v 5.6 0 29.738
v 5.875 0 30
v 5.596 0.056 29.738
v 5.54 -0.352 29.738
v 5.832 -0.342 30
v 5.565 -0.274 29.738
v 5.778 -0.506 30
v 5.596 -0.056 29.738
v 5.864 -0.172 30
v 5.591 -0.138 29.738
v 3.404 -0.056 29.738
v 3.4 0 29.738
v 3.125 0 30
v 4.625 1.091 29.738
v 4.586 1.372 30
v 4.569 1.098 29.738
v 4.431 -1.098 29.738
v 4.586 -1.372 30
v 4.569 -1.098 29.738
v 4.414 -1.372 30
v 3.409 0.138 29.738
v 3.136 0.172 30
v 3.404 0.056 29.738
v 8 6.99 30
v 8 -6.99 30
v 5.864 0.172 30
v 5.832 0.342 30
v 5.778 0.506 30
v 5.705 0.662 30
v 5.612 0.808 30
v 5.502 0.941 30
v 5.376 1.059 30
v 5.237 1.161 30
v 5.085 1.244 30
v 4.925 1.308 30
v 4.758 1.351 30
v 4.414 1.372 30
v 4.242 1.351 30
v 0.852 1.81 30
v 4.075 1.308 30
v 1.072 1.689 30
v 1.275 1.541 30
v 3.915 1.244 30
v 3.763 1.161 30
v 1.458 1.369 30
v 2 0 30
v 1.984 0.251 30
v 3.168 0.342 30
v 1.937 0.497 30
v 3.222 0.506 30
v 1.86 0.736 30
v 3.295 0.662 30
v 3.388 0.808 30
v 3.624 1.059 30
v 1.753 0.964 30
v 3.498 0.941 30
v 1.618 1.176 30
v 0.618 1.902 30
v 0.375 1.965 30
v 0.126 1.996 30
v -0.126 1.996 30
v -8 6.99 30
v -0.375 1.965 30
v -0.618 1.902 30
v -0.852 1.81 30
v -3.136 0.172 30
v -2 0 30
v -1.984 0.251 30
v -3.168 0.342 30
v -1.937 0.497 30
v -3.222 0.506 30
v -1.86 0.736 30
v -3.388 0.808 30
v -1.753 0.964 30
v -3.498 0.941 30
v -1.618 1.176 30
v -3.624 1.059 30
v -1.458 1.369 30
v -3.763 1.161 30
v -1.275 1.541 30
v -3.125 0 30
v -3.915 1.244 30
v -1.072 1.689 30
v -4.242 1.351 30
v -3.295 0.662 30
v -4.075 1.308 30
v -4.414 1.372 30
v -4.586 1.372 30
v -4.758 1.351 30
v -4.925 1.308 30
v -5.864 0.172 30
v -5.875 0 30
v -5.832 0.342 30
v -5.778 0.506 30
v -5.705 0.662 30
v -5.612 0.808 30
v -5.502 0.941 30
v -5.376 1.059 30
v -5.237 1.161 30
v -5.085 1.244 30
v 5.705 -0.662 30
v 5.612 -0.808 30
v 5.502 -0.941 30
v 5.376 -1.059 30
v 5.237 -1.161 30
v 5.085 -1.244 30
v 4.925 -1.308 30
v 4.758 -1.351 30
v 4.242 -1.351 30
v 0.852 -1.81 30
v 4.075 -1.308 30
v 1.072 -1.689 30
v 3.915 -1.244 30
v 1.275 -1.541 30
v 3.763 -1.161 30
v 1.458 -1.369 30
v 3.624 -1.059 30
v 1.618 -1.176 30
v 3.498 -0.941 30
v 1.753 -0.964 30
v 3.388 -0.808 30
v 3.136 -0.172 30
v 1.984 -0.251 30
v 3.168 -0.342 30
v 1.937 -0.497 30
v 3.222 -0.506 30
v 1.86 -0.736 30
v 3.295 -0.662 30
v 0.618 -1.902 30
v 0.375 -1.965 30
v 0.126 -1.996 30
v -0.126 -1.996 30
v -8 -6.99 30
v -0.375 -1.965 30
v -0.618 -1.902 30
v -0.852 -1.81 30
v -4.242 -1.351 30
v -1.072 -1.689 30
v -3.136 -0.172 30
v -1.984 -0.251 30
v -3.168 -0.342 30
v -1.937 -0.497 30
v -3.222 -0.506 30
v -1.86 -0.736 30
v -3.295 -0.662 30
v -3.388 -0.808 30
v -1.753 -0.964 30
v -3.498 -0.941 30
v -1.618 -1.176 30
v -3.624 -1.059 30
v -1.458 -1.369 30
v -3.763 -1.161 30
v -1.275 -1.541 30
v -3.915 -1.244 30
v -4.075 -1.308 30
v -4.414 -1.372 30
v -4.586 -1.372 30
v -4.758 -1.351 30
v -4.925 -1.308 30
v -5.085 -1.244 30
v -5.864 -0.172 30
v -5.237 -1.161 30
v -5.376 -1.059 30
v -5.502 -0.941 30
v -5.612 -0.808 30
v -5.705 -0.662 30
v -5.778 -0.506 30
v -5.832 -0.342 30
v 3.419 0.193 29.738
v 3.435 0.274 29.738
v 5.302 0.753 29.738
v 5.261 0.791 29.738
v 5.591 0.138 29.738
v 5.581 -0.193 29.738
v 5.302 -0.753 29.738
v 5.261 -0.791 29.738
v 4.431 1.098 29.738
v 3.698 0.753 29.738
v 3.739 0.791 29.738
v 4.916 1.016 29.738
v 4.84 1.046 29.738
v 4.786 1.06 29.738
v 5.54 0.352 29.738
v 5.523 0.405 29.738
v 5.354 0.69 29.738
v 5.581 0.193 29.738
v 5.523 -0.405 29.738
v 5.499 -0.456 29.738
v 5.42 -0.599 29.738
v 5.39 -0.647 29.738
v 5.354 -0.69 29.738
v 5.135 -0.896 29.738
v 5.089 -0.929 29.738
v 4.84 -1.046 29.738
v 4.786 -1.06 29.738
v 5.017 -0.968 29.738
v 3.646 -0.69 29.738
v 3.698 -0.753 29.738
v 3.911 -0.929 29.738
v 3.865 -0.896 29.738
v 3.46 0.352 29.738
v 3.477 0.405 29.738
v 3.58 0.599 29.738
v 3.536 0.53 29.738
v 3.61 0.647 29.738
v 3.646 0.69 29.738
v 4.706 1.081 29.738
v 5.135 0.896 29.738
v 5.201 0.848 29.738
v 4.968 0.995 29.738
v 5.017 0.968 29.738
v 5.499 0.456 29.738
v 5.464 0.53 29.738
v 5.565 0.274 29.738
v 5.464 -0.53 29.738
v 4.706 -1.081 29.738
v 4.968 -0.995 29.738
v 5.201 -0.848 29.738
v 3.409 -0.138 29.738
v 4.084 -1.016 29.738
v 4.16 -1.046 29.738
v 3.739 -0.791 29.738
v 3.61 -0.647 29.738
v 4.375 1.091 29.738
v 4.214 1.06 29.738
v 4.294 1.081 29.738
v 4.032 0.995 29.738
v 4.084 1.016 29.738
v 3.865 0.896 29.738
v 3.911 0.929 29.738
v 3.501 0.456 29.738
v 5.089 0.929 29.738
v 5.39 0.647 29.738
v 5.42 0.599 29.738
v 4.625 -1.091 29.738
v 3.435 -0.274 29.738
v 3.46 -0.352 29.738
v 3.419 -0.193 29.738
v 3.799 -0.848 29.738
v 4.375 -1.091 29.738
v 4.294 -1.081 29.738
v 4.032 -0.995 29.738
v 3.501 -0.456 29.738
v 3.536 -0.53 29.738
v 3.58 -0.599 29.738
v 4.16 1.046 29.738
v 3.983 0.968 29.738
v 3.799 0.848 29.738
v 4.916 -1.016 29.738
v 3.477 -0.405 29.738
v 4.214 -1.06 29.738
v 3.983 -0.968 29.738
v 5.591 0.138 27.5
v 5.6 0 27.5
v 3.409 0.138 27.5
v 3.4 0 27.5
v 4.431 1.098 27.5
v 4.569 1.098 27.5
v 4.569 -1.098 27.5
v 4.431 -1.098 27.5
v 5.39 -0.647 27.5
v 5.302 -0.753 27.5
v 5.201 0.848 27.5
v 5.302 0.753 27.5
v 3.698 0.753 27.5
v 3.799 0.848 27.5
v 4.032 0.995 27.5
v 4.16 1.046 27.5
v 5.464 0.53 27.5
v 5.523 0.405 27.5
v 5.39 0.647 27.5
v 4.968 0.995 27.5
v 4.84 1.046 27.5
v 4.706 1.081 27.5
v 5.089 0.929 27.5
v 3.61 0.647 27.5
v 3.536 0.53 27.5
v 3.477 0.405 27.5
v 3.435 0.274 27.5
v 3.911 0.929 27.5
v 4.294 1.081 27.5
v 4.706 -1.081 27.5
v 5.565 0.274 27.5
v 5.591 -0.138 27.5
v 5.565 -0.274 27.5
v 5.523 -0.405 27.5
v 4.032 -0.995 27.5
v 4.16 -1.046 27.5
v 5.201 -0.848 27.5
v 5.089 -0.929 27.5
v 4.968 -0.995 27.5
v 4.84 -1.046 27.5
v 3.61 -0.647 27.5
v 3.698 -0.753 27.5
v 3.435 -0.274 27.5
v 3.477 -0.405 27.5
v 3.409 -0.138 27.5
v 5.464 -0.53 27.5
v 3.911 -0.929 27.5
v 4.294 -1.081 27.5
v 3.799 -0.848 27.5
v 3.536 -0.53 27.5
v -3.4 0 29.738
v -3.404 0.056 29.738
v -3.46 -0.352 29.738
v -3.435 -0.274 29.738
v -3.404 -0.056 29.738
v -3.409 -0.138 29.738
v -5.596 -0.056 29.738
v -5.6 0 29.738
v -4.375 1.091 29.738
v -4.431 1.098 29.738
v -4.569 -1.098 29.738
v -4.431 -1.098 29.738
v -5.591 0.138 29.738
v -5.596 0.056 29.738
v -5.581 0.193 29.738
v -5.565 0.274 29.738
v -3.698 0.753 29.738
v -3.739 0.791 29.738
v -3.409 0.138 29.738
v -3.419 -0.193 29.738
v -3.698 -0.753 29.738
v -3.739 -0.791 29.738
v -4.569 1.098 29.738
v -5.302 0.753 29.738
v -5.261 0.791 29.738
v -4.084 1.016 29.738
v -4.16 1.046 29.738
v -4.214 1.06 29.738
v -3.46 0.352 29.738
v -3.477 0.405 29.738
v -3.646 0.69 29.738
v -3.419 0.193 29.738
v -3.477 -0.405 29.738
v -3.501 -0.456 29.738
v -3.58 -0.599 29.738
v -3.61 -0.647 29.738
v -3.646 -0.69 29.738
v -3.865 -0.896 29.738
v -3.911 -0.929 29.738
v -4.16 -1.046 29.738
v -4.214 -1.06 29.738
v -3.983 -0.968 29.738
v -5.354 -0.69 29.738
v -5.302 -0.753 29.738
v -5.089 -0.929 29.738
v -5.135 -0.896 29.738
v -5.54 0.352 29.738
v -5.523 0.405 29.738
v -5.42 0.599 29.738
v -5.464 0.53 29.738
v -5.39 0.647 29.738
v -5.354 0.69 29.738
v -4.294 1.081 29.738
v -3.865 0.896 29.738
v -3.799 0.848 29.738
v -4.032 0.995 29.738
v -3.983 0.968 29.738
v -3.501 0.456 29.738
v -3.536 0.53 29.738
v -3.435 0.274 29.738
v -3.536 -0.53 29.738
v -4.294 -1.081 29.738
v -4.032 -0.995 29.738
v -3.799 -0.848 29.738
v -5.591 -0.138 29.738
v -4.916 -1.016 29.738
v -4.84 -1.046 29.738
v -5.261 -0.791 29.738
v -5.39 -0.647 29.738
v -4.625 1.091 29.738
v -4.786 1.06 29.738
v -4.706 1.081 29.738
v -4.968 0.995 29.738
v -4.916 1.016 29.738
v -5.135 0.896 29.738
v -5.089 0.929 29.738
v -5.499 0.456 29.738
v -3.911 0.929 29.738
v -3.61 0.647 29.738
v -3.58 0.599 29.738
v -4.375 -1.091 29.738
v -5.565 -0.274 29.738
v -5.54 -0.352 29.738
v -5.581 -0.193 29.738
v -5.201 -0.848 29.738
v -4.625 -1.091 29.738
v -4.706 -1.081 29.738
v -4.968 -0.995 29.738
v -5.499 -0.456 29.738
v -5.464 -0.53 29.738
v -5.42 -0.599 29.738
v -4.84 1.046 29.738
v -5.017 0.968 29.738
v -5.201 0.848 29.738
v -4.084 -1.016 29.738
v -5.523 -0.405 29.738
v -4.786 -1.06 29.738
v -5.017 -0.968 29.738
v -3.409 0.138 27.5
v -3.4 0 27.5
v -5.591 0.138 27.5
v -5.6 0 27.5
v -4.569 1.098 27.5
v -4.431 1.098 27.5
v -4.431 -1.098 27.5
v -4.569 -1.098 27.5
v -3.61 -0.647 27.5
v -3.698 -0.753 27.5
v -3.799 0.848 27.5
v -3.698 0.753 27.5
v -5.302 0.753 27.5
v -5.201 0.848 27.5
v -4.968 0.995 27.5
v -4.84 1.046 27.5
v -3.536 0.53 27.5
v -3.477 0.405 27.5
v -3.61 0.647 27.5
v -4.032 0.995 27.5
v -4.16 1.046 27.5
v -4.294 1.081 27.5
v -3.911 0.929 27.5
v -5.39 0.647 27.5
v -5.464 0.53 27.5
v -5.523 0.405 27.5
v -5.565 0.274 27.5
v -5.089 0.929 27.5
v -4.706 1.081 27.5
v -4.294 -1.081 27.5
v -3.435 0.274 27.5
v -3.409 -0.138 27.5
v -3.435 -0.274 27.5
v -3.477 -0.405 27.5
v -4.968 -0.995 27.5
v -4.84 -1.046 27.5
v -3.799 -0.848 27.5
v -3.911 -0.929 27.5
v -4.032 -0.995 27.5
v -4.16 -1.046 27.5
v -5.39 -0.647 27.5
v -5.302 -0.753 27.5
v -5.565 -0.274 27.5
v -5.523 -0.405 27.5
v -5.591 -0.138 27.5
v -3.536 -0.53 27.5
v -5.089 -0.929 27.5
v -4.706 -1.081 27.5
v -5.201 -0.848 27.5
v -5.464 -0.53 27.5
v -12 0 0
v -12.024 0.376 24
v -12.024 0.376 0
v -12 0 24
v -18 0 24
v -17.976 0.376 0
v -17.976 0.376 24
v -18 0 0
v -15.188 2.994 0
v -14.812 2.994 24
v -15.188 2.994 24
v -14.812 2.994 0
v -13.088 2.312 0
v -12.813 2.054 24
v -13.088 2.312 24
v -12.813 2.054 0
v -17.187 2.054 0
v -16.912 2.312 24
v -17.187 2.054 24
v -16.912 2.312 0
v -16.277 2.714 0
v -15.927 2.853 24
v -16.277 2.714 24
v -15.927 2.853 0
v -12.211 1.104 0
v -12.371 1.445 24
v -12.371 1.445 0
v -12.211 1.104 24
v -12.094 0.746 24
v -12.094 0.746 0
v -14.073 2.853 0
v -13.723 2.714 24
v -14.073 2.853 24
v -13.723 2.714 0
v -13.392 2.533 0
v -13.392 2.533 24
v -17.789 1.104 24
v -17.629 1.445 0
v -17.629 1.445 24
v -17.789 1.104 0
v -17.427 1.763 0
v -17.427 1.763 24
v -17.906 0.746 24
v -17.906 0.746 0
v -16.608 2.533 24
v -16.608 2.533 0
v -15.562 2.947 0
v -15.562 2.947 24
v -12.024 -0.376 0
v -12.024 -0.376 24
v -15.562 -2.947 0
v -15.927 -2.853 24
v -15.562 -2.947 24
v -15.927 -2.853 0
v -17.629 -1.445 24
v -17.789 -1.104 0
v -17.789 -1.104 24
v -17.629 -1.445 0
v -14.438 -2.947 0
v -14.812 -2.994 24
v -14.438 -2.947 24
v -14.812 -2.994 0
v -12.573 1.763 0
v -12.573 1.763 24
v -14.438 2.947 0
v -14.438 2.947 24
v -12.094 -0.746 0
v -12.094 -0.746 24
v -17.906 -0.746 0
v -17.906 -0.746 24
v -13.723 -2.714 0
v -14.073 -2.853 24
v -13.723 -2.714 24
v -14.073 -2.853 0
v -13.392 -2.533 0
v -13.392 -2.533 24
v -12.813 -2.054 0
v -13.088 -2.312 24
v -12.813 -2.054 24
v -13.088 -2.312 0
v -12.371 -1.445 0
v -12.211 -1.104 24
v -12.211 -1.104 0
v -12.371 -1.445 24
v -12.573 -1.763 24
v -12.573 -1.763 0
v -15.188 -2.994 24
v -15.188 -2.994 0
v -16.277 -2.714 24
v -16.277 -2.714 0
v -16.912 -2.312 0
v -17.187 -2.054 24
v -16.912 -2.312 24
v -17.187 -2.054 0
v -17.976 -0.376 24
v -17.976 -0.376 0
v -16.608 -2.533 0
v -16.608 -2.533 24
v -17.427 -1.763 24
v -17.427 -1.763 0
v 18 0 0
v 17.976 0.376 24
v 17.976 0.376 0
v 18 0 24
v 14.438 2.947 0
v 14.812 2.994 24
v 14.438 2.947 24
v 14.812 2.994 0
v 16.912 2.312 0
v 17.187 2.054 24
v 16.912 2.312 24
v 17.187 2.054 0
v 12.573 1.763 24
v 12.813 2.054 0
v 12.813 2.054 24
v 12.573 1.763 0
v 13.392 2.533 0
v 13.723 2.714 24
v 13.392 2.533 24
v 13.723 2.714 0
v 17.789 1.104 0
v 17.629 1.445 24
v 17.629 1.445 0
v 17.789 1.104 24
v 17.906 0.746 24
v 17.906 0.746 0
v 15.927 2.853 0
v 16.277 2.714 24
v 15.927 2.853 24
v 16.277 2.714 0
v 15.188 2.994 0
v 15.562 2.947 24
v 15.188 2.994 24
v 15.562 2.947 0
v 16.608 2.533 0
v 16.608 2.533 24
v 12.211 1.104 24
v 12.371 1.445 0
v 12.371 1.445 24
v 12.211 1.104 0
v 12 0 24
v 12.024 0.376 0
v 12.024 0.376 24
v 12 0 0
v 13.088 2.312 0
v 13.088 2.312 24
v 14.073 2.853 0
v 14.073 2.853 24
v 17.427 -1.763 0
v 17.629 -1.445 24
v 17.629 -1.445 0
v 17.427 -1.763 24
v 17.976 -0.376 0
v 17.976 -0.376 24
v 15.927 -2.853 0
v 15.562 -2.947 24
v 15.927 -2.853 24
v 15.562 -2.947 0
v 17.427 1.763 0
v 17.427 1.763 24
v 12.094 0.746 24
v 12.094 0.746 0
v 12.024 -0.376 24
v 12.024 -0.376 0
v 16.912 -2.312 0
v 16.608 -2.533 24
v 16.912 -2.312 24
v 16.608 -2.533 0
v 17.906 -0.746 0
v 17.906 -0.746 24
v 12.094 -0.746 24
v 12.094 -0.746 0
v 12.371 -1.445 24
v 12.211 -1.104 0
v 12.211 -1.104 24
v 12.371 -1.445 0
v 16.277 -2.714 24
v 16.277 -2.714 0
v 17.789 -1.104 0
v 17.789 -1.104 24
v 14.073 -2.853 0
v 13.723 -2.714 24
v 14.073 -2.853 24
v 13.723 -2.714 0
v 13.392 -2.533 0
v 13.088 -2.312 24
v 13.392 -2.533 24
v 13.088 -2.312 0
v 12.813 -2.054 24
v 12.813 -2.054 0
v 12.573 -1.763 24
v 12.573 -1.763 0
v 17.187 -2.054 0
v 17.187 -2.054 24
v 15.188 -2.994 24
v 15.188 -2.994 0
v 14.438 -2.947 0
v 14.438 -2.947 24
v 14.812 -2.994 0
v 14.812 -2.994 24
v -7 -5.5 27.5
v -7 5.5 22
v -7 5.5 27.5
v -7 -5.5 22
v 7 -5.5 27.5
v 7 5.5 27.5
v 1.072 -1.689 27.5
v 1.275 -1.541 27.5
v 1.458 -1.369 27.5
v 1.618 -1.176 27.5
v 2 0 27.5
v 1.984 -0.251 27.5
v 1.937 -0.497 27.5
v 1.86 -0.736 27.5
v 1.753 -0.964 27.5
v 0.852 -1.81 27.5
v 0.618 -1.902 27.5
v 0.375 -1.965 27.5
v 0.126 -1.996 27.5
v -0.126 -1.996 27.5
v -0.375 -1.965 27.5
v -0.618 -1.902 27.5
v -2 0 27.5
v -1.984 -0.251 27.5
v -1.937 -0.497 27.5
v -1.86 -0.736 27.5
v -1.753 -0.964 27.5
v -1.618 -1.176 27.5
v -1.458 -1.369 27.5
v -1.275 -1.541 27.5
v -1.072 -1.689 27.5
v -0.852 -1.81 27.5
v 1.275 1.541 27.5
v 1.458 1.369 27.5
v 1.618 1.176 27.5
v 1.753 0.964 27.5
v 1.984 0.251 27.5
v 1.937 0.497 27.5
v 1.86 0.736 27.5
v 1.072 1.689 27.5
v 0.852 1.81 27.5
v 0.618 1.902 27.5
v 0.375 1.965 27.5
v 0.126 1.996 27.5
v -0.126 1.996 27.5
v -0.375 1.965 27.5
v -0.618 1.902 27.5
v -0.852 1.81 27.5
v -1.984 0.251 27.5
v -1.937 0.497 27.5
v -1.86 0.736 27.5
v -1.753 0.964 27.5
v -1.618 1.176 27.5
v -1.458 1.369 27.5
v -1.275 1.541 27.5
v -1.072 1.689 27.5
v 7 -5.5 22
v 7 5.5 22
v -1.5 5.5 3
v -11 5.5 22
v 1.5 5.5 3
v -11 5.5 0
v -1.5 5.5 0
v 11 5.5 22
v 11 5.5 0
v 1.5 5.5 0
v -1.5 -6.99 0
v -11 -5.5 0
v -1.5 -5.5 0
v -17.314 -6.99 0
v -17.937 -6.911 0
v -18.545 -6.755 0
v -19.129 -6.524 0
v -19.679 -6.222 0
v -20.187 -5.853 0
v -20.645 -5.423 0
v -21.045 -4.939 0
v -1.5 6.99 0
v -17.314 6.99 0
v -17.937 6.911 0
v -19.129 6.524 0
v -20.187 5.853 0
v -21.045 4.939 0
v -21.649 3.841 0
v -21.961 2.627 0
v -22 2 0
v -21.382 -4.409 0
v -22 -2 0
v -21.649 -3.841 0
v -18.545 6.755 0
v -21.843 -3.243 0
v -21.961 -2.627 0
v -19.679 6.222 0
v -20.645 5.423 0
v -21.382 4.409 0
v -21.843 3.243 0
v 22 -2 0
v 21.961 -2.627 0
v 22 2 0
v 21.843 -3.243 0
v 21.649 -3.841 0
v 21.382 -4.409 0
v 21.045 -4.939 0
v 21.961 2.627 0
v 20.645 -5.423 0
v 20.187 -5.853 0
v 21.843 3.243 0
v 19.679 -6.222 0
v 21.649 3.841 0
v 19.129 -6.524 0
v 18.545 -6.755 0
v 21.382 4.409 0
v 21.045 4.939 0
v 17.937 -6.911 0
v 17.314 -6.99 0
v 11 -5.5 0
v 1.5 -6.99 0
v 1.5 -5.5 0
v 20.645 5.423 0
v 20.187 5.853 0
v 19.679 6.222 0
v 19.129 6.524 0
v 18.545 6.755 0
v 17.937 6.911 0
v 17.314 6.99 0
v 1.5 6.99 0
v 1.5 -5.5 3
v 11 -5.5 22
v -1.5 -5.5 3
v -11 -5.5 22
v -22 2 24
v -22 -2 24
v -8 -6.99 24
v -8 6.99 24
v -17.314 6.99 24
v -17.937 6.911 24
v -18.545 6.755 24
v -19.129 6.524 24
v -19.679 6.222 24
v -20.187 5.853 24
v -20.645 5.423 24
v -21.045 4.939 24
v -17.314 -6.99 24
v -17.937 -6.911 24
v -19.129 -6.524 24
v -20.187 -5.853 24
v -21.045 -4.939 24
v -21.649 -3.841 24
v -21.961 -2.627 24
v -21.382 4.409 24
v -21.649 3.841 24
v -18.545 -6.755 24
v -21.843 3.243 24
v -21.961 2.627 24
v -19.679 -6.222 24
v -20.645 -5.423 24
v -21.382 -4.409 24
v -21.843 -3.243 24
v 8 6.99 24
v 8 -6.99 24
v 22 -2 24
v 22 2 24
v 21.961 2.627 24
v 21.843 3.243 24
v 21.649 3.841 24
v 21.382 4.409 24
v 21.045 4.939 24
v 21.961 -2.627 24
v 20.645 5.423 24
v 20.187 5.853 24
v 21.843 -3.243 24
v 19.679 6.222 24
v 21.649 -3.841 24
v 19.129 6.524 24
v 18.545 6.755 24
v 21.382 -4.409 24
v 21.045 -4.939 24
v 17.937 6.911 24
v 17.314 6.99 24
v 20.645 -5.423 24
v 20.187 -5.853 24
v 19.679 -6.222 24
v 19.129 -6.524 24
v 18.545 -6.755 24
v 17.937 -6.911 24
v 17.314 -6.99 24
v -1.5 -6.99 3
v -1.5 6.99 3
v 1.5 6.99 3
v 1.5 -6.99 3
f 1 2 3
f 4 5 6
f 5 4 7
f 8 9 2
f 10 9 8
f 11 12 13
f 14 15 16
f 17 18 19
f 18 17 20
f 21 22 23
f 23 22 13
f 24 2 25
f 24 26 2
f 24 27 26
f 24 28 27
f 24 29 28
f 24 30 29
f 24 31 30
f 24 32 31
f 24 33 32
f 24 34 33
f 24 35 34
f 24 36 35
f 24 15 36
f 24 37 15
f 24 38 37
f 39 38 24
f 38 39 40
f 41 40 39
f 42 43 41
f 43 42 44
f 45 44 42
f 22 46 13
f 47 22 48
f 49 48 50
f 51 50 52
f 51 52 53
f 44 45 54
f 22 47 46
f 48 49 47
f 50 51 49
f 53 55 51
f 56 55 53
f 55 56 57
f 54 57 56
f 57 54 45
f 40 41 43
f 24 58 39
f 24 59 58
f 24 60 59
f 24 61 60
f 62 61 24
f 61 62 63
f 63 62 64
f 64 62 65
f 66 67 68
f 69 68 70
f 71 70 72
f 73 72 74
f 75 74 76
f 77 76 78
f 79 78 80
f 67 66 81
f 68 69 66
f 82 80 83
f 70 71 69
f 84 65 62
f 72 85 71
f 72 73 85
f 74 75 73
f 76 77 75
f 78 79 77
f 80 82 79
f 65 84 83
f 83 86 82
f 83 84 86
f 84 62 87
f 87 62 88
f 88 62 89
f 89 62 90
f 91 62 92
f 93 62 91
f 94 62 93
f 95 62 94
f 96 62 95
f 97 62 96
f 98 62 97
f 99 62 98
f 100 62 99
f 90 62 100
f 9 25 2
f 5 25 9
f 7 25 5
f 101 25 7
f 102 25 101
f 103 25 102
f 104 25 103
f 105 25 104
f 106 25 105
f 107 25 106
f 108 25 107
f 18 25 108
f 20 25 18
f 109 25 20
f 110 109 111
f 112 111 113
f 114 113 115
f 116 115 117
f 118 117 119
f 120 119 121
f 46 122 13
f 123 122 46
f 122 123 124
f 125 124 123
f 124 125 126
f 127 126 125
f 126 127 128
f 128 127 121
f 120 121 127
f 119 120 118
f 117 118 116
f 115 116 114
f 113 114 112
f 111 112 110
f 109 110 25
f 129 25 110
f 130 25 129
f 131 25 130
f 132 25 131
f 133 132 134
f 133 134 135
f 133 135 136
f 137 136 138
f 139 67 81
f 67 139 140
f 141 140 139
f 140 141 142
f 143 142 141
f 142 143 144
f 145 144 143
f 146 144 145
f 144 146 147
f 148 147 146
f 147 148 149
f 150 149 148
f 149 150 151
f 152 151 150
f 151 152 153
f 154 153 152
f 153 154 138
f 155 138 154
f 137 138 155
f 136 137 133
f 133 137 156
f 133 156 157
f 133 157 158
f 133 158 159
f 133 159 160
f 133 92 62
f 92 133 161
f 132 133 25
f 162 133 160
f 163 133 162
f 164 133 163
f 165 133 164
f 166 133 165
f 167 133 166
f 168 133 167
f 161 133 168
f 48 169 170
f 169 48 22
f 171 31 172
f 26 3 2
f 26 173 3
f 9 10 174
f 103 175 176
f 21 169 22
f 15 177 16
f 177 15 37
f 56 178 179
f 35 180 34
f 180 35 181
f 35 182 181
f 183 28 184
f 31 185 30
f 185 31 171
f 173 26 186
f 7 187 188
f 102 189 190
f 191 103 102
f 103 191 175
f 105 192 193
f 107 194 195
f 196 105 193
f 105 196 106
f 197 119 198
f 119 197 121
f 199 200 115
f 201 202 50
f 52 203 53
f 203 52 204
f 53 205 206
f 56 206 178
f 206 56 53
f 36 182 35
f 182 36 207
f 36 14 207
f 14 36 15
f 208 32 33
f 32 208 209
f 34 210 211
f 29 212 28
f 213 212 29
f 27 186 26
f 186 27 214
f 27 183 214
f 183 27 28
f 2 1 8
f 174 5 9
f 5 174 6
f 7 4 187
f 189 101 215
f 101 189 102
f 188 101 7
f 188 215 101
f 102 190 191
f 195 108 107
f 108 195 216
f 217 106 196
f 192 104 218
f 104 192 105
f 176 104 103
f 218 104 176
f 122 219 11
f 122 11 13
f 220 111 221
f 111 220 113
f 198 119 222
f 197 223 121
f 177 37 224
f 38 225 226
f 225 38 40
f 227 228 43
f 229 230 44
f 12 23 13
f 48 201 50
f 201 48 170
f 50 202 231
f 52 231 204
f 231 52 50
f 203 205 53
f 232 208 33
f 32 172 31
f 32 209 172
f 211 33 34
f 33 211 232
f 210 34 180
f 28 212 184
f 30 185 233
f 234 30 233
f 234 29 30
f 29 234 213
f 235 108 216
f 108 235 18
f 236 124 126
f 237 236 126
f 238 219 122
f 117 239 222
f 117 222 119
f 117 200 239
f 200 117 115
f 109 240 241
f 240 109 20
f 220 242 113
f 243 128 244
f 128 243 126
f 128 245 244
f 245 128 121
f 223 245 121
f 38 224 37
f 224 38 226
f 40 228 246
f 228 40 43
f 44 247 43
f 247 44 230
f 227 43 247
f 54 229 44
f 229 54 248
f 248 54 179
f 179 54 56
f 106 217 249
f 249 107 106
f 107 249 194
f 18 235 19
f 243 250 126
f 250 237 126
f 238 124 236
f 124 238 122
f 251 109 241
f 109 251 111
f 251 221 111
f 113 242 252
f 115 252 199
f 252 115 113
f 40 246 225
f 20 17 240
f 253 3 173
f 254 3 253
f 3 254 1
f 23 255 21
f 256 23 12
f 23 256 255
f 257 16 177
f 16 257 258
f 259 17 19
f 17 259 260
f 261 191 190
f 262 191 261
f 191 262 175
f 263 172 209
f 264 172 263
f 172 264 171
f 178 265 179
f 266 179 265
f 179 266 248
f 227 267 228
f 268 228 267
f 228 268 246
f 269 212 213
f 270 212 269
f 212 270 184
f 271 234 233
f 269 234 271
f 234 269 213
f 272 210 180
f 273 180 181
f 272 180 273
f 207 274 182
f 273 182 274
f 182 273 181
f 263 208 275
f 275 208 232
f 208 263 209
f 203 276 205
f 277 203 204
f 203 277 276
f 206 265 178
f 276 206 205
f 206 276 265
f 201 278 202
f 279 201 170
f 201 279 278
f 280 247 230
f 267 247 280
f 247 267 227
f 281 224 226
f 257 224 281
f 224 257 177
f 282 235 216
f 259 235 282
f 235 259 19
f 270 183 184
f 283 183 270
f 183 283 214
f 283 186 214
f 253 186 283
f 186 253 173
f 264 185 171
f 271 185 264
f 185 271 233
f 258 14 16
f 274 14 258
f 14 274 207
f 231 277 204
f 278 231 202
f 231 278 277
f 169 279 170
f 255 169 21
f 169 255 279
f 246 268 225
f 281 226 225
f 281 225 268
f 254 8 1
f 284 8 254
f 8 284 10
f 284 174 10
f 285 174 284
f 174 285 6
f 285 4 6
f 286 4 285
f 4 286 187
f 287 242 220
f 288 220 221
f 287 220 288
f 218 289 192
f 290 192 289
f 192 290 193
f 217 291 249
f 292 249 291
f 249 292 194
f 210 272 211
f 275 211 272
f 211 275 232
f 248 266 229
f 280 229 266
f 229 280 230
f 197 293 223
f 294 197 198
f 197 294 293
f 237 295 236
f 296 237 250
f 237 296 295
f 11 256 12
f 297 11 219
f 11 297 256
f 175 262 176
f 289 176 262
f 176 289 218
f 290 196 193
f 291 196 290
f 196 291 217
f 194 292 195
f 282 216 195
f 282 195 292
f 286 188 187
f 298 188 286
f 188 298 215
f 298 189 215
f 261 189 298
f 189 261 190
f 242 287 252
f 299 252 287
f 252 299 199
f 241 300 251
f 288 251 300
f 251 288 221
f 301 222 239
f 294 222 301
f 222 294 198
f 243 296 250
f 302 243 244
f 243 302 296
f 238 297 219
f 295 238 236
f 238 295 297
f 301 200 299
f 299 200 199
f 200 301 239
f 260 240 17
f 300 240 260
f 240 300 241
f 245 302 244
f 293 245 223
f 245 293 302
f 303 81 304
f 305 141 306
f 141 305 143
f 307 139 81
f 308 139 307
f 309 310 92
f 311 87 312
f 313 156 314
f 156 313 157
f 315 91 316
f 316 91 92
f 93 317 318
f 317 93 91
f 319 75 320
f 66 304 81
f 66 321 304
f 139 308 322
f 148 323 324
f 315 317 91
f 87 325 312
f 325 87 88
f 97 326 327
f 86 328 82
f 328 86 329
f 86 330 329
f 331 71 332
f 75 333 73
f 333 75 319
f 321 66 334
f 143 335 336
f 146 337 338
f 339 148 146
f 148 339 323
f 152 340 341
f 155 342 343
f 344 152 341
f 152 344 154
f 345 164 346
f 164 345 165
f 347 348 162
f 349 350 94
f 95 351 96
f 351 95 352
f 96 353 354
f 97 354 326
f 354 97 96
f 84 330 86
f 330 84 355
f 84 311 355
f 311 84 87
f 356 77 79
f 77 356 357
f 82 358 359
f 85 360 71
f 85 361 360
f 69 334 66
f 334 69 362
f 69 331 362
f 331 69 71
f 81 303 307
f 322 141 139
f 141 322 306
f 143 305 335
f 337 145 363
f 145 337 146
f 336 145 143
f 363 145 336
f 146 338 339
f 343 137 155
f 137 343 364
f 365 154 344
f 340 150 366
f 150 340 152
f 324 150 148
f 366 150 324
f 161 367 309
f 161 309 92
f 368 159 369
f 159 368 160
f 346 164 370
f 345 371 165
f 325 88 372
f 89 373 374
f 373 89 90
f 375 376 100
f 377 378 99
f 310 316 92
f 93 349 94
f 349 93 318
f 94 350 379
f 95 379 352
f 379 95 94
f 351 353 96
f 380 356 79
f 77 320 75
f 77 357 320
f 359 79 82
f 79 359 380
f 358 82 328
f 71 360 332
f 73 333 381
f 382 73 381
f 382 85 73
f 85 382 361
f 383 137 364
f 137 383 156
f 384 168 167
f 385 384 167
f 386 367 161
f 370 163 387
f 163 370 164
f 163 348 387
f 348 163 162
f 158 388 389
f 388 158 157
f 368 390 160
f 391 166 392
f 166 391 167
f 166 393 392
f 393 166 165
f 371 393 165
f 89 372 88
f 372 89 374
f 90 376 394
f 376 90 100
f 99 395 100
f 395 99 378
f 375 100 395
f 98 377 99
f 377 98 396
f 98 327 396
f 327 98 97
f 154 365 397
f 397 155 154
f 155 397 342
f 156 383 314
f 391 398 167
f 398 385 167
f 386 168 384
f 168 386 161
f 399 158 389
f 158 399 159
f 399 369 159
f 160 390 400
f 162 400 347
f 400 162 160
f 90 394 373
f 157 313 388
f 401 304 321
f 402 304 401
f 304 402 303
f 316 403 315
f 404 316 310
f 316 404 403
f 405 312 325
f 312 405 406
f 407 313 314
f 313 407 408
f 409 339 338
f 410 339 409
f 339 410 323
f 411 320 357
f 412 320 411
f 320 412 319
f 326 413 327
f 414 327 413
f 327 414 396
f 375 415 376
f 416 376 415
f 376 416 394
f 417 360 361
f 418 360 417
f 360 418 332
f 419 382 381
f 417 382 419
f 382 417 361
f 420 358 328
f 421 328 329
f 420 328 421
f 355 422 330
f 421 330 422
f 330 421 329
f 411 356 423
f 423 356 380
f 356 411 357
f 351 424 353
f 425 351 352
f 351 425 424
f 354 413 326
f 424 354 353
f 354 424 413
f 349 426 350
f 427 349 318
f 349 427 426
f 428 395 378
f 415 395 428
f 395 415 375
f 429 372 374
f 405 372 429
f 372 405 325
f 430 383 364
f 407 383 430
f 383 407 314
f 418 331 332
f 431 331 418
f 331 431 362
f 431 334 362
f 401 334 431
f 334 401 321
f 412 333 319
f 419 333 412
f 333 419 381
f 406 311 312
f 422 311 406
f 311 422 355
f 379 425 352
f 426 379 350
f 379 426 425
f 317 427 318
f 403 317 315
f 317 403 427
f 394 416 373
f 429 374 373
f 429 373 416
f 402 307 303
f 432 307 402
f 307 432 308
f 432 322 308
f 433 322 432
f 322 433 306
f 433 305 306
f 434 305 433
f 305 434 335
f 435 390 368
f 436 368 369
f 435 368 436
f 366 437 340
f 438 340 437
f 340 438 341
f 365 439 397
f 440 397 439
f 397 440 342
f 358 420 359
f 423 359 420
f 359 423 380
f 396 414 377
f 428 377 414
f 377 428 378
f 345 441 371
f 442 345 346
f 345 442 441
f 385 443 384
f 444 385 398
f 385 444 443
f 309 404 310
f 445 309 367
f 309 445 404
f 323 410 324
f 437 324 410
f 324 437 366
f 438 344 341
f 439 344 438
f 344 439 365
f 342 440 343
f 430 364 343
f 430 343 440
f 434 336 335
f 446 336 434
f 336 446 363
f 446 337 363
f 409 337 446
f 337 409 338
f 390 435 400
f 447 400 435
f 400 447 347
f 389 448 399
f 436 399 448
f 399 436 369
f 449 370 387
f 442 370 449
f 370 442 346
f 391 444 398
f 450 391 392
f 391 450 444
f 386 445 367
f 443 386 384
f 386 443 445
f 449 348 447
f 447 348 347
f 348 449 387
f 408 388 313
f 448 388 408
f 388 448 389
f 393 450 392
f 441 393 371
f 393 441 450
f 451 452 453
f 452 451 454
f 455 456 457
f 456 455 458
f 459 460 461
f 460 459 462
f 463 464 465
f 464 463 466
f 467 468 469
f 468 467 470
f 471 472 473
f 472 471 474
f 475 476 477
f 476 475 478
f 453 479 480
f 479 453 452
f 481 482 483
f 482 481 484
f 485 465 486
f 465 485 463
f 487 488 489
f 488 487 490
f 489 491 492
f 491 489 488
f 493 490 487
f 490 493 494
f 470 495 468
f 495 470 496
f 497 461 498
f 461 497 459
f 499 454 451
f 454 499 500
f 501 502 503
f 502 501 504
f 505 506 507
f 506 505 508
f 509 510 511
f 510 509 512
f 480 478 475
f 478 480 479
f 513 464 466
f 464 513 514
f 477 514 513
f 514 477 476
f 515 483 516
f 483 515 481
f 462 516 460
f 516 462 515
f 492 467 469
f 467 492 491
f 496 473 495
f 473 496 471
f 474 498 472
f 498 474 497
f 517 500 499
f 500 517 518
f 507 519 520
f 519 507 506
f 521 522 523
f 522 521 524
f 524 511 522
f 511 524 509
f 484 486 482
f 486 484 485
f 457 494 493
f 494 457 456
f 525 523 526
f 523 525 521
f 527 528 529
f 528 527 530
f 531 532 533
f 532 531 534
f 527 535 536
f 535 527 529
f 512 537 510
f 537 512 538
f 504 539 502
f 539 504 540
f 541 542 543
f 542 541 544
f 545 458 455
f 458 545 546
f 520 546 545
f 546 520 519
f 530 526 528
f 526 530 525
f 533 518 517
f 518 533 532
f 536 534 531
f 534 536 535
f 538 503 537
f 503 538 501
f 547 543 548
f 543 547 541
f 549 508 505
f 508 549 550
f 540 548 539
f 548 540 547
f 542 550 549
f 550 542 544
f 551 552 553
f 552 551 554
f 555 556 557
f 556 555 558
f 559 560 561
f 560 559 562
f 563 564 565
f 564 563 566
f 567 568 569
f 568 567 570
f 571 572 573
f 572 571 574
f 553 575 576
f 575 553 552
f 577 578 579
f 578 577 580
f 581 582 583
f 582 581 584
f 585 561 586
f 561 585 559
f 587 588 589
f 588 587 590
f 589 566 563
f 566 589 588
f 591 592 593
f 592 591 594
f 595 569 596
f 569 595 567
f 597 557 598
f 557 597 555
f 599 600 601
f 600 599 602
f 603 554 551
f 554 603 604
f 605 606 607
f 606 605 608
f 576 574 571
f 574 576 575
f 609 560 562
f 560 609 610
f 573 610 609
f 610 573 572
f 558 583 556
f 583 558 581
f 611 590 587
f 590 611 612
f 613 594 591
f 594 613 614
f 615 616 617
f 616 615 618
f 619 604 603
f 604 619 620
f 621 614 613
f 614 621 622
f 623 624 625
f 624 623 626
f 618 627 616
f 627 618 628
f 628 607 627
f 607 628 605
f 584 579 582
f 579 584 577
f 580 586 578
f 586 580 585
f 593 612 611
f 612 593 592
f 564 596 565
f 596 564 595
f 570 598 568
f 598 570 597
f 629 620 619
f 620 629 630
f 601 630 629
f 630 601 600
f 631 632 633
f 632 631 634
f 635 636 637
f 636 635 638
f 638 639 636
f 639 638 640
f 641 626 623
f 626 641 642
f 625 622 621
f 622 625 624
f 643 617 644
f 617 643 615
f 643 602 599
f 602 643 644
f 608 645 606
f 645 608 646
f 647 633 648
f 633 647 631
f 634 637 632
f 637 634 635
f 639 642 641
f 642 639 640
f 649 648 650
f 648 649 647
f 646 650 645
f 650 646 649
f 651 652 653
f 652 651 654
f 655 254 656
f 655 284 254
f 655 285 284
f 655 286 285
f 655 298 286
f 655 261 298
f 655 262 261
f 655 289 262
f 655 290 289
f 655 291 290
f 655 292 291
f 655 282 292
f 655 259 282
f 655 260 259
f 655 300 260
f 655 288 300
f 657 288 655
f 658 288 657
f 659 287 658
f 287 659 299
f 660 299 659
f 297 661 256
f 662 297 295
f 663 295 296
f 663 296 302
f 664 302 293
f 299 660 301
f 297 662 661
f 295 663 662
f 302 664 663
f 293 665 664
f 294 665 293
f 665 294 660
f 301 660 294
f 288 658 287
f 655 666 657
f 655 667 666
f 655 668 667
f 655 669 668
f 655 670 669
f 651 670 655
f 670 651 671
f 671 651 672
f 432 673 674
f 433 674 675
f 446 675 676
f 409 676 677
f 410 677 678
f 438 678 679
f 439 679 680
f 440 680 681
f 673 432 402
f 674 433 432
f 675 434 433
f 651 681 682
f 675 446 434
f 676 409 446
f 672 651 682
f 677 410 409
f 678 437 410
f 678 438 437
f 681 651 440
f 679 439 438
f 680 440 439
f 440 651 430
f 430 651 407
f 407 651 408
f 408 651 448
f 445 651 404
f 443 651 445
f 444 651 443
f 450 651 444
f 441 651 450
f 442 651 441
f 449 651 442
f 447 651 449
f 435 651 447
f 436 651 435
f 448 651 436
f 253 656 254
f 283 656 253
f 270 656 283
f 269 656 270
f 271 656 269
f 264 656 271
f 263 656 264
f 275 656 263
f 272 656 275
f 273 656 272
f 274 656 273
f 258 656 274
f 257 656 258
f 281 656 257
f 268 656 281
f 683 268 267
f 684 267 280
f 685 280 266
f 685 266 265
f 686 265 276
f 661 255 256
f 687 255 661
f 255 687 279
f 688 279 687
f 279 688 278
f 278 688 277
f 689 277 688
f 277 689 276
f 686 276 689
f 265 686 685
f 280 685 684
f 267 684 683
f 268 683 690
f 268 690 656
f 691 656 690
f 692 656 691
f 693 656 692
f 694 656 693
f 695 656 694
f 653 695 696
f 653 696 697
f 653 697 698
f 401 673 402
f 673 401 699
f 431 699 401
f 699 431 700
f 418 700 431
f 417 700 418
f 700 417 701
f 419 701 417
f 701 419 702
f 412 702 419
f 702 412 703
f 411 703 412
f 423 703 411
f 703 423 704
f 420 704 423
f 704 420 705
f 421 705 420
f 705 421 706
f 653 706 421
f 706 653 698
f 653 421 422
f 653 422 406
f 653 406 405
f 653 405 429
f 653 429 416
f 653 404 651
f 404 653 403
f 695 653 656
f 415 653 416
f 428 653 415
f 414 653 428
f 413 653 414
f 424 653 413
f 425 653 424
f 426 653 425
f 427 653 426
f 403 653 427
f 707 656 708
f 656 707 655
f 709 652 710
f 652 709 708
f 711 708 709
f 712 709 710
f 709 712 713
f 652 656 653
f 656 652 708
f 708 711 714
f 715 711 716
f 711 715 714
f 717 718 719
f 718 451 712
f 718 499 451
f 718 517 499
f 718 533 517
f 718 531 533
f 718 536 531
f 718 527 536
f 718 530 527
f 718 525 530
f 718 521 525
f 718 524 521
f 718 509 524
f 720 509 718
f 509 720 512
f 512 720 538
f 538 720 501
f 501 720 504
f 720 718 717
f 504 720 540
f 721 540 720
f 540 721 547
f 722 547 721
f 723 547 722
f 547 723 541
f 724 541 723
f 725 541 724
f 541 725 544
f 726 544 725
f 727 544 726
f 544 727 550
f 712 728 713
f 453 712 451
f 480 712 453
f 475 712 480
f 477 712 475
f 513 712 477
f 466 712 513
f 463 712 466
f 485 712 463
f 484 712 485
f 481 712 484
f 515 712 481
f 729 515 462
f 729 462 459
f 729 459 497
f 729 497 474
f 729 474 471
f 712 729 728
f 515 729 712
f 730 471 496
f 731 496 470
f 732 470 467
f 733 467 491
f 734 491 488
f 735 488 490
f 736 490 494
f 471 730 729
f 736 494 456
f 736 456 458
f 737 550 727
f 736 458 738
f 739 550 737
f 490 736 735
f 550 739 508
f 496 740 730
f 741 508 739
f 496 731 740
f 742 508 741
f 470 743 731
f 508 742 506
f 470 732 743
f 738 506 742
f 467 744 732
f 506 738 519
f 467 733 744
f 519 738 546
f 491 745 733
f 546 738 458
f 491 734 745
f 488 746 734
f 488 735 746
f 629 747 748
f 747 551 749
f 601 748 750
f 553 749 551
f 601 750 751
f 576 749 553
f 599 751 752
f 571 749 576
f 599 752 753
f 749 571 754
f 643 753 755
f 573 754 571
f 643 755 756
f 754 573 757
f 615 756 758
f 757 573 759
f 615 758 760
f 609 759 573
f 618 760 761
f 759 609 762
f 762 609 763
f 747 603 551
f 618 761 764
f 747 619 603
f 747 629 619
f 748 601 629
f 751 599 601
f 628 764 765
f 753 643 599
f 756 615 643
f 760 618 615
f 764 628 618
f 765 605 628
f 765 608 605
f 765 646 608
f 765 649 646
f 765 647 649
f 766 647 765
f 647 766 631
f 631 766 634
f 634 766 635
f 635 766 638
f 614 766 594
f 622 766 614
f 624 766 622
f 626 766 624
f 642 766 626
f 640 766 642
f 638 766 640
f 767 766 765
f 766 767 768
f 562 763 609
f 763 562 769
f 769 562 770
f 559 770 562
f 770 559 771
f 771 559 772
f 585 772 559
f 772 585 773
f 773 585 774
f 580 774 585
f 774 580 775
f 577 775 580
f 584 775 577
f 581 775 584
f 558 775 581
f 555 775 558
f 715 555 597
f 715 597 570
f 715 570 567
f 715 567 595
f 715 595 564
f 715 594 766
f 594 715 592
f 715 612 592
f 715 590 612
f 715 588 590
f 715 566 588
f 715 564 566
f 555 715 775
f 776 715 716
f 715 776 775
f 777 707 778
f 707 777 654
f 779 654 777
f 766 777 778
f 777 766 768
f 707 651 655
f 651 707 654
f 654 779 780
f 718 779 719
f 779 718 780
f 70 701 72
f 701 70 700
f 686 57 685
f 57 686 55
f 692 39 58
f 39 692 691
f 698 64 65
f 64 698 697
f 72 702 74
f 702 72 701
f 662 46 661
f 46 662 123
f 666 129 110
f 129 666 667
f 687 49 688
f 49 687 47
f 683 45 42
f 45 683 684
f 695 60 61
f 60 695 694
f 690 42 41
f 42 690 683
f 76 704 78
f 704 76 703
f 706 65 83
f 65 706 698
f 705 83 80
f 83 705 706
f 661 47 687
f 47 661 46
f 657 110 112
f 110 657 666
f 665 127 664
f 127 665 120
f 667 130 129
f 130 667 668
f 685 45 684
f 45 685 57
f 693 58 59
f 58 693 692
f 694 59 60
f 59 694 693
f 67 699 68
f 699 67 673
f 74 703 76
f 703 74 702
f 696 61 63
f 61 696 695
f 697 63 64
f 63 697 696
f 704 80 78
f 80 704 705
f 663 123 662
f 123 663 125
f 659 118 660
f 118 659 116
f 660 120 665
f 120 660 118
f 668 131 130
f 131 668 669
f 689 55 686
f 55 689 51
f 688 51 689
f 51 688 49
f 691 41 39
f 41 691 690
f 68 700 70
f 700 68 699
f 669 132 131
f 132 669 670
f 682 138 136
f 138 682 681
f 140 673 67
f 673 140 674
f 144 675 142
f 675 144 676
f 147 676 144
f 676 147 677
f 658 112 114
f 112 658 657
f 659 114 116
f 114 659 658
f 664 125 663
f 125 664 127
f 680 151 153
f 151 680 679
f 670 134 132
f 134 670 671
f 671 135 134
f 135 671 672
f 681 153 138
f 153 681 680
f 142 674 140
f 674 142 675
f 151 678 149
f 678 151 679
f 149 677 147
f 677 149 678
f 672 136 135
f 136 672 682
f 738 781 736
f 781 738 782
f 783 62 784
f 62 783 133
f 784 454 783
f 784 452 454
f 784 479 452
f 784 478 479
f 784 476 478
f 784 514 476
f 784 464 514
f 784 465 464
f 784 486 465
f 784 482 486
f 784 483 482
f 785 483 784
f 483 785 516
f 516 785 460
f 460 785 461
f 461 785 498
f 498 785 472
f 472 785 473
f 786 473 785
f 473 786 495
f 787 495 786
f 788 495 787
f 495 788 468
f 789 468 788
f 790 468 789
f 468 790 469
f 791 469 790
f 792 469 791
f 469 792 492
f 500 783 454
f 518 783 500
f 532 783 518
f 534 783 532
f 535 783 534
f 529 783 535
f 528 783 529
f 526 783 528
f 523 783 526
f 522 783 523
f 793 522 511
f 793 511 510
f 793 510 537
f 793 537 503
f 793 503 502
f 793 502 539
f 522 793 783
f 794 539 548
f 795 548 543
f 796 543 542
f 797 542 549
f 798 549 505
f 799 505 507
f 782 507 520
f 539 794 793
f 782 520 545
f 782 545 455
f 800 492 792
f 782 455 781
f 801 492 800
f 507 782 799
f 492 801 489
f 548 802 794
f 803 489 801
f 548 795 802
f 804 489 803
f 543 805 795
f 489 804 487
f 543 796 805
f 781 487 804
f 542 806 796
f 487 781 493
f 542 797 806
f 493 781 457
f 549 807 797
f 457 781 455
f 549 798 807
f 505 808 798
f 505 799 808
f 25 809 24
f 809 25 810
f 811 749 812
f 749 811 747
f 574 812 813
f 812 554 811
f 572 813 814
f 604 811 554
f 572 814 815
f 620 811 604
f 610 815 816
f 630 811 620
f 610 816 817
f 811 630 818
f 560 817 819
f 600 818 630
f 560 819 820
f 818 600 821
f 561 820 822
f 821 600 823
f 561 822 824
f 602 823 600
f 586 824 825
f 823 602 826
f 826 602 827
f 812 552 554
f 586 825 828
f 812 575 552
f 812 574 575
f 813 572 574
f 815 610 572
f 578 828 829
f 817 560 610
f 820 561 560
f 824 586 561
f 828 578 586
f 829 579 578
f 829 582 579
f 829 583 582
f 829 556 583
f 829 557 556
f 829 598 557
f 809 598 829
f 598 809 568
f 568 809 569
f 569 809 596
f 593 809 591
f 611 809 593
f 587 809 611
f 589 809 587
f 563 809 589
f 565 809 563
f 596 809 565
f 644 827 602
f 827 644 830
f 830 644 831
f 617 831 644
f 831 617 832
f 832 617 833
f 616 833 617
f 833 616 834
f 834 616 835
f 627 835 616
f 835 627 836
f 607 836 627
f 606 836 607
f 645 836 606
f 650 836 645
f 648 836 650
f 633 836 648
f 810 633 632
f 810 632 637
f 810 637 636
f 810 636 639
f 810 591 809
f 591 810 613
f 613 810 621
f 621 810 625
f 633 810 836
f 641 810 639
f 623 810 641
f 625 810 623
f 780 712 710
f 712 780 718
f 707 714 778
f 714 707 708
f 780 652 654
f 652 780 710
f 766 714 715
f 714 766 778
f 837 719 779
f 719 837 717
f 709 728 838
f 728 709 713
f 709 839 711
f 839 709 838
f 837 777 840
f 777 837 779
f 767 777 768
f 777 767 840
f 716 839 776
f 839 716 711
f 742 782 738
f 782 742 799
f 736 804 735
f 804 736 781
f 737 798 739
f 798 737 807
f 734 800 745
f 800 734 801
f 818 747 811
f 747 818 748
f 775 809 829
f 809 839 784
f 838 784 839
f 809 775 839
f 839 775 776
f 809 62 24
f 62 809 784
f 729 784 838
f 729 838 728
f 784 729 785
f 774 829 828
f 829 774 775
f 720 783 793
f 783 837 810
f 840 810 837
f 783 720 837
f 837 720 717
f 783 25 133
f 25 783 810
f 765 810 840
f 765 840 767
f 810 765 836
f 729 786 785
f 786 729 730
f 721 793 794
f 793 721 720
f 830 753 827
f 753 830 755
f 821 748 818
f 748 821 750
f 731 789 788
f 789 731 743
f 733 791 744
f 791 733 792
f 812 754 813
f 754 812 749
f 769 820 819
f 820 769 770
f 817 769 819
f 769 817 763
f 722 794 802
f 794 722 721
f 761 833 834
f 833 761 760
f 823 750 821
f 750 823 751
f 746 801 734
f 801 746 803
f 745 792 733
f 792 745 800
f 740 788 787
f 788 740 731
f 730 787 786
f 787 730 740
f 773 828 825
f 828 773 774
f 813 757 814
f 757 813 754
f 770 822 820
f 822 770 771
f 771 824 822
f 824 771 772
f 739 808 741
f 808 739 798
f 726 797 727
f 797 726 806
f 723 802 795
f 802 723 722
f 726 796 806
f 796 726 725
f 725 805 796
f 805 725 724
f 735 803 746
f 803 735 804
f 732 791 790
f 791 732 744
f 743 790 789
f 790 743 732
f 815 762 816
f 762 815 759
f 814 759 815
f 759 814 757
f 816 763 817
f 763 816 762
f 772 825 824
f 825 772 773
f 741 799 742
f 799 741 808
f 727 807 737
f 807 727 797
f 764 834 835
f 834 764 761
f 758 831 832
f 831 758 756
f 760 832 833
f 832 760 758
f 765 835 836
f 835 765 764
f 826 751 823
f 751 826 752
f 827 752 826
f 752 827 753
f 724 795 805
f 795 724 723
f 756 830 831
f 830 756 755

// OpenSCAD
$fn = 50;


difference() {
	union() {
		hull() {
			translate(v = [-17.0000000000, 2.0000000000, 0]) {
				cylinder(h = 30, r = 5);
			}
			translate(v = [17.0000000000, 2.0000000000, 0]) {
				cylinder(h = 30, r = 5);
			}
			translate(v = [-17.0000000000, -2.0000000000, 0]) {
				cylinder(h = 30, r = 5);
			}
			translate(v = [17.0000000000, -2.0000000000, 0]) {
				cylinder(h = 30, r = 5);
			}
		}
	}
	union() {
		translate(v = [4.5000000000, 0, 30]) {
			rotate(a = [0, 0, 0]) {
				difference() {
					union() {
						translate(v = [0, 0, -0.5000000000]) {
							cylinder(h = 0.5000000000, r1 = 0.8500000000, r2 = 1.3750000000);
						}
						translate(v = [0, 0, -4.0000000000]) {
							cylinder(h = 4, r = 0.8500000000);
						}
						translate(v = [0, 0, -4.0000000000]) {
							cylinder(h = 4, r = 1.1000000000);
						}
						translate(v = [0, 0, -4.0000000000]) {
							cylinder(h = 4, r = 0.8500000000);
						}
					}
					union();
				}
			}
		}
		translate(v = [-4.5000000000, 0, 30]) {
			rotate(a = [0, 0, 0]) {
				difference() {
					union() {
						translate(v = [0, 0, -0.5000000000]) {
							cylinder(h = 0.5000000000, r1 = 0.8500000000, r2 = 1.3750000000);
						}
						translate(v = [0, 0, -4.0000000000]) {
							cylinder(h = 4, r = 0.8500000000);
						}
						translate(v = [0, 0, -4.0000000000]) {
							cylinder(h = 4, r = 1.1000000000);
						}
						translate(v = [0, 0, -4.0000000000]) {
							cylinder(h = 4, r = 0.8500000000);
						}
					}
					union();
				}
			}
		}
		translate(v = [-15.0000000000, 0.0000000000, -100.0000000000]) {
			cylinder(h = 200, r = 3.0000000000);
		}
		translate(v = [15.0000000000, 0.0000000000, -100.0000000000]) {
			cylinder(h = 200, r = 3.0000000000);
		}
		translate(v = [15.0000000000, 0.0000000000, -100.0000000000]) {
			cylinder(h = 200, r = 3.0000000000);
		}
		translate(v = [-15.0000000000, 0.0000000000, -100.0000000000]) {
			cylinder(h = 200, r = 1.5000000000);
		}
		translate(v = [15.0000000000, 0.0000000000, -100.0000000000]) {
			cylinder(h = 200, r = 1.5000000000);
		}
		translate(v = [-15.0000000000, 0.0000000000, -100.0000000000]) {
			cylinder(h = 200, r = 1.5000000000);
		}
		translate(v = [15.0000000000, 0.0000000000, -100.0000000000]) {
			cylinder(h = 200, r = 1.5000000000);
		}
		translate(v = [-15.0000000000, 0.0000000000, -100.0000000000]) {
			cylinder(h = 200, r = 1.5000000000);
		}
		translate(v = [15.0000000000, 0.0000000000, -100.0000000000]) {
			cylinder(h = 200, r = 1.5000000000);
		}
		translate(v = [-7.0000000000, -5.5000000000, 0]) {
			cube(size = [14, 11, 27.5000000000]);
		}
		cylinder(h = 30, r = 2.0000000000);
		translate(v = [-22.0000000000, -7.0000000000, 24]) {
			cube(size = [14, 14, 6]);
		}
		translate(v = [8.0000000000, -7.0000000000, 24]) {
			cube(size = [14, 14, 6]);
		}
		translate(v = [-11.0000000000, -5.5000000000, 0]) {
			cube(size = [22, 11, 22]);
		}
		translate(v = [-1.5000000000, -22.5000000000, 0]) {
			cube(size = [3, 45, 3]);
		}
	}
}
